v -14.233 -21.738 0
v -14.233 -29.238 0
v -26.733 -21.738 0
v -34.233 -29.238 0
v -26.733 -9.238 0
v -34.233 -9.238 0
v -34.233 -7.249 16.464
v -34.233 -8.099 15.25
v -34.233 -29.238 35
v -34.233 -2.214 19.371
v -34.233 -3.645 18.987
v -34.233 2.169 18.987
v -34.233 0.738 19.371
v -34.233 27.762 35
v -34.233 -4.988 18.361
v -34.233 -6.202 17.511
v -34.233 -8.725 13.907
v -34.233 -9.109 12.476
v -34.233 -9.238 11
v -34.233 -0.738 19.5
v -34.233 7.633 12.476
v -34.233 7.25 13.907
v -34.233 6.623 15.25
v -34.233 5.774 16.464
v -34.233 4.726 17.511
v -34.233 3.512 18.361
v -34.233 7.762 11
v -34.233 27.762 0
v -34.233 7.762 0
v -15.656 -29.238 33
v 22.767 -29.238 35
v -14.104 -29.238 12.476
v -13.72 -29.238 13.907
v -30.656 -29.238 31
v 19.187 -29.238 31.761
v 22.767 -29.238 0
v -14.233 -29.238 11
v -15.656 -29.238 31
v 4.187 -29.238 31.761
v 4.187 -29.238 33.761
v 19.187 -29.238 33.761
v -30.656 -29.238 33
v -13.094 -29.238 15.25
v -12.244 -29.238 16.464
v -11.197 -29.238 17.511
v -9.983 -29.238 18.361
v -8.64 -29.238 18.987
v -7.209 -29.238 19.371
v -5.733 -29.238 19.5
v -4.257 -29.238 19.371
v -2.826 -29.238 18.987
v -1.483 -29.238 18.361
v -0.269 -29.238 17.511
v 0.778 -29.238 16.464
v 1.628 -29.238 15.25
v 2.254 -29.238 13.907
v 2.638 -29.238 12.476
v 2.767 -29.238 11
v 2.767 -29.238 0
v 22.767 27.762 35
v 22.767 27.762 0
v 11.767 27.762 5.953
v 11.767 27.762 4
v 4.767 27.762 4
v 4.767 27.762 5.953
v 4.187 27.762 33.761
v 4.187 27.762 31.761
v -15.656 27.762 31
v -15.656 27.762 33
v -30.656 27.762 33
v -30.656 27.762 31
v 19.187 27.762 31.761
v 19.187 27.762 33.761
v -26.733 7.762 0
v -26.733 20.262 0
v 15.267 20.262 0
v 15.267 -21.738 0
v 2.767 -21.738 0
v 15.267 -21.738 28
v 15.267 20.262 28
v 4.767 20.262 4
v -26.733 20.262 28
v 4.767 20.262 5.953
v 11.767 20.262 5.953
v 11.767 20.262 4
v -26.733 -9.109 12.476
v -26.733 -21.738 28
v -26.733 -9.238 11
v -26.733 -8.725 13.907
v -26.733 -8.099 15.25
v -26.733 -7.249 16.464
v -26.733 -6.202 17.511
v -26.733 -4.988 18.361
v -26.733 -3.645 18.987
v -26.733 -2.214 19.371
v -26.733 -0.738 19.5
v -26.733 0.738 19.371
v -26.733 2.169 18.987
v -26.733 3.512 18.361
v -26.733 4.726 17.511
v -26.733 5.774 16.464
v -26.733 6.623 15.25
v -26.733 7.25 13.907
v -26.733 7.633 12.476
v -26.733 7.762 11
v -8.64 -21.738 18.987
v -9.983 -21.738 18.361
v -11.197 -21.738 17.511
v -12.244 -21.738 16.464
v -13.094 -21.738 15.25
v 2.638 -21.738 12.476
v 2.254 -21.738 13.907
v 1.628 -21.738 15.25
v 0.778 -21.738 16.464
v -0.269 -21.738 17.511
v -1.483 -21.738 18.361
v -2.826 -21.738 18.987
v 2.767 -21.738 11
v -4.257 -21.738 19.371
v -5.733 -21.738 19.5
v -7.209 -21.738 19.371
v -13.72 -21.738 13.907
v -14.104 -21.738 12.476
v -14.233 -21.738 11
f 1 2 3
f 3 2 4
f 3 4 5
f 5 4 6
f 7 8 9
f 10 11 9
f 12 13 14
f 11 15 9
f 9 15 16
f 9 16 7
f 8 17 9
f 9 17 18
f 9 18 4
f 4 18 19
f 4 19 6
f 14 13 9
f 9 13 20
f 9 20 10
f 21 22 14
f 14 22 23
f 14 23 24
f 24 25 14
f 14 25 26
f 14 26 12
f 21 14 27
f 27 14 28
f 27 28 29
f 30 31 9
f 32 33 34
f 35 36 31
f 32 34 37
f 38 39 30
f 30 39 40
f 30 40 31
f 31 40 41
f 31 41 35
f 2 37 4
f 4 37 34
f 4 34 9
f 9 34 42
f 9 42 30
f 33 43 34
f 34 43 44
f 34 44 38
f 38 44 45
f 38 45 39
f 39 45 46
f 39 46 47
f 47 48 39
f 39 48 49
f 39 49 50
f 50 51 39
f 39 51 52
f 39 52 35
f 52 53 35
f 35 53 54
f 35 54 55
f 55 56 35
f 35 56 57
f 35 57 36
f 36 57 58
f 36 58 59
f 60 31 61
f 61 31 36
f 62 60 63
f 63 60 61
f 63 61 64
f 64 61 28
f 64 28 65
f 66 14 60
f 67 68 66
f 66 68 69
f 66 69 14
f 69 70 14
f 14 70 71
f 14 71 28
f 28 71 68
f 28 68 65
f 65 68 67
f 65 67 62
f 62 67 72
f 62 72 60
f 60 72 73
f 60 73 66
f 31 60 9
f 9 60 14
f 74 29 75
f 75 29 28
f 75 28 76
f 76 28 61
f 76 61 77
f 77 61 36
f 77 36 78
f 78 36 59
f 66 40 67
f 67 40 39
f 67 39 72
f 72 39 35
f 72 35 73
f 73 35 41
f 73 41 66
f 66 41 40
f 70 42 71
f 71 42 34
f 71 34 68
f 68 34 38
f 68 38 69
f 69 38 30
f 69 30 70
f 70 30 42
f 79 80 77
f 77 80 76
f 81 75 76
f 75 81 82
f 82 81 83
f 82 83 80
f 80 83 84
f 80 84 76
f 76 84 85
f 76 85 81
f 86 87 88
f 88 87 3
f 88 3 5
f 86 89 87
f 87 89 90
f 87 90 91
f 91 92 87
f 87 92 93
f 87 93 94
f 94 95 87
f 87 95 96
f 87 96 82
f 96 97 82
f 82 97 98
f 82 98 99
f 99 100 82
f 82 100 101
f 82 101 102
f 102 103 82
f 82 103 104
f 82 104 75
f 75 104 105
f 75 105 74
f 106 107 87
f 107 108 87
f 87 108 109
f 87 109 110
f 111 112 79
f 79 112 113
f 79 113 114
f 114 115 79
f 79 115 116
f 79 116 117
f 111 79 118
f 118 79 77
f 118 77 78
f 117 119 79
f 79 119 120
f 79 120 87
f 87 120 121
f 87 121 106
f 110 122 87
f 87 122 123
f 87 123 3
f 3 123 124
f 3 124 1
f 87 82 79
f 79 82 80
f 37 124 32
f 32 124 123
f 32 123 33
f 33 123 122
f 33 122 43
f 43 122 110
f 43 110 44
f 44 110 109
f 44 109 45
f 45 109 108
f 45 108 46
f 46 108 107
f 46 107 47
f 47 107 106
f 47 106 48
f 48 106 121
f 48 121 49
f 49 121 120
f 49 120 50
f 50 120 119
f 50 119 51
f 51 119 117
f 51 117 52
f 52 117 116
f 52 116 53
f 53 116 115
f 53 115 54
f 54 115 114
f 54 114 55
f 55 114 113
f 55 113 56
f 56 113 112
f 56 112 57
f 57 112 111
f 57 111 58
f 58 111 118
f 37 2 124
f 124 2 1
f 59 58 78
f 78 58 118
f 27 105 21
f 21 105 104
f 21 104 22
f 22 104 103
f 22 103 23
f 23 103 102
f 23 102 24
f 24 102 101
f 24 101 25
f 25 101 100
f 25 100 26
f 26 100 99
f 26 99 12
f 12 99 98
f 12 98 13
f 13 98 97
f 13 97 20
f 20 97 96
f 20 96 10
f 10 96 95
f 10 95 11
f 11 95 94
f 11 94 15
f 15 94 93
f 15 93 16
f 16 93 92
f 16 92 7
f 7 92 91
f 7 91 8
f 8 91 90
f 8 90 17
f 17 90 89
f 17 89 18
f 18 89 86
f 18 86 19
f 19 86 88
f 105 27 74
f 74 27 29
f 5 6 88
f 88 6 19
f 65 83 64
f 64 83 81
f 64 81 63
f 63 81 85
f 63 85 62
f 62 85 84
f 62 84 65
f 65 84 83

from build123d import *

# Parameters (mm, degrees)
SKETCH2_W           = 57
SKETCH2_H           = 57
BOSS_EXTRUDE1_DEPTH = 35
SKETCH3_W           = 15
SKETCH3_H           = 2
CUT_EXTRUDE1_DEPTH  = 60
SKETCH4_W           = 42
SKETCH4_H           = 42
CUT_EXTRUDE2_DEPTH  = 28
CUT_EXTRUDE4_DEPTH  = 5
CUT_EXTRUDE5_DEPTH  = 10
CUT_EXTRUDE6_DEPTH  = 5
SKETCH13_W          = 7
SKETCH13_H          = 1.952566844
CUT_EXTRUDE8_DEPTH  = 12


with BuildPart() as part:
    # Sketch2 → Boss-Extrude1 (new body)
    with BuildSketch(Plane.XY):
        with Locations((-5.733009709, -0.737864078)):
            Rectangle(SKETCH2_W, SKETCH2_H)
    extrude(amount=BOSS_EXTRUDE1_DEPTH)

    # Sketch3 → Cut-Extrude1 (cut)
    with BuildSketch(Plane(origin=(0, 27.762135922, 0), x_dir=(1, 0, 0), z_dir=(0, 1, 0))):
        with Locations((-23.156416284, -32)):
            Rectangle(SKETCH3_W, SKETCH3_H)
        with Locations((11.686990291, -32.761209032)):
            Rectangle(SKETCH3_W, SKETCH3_H)
    extrude(amount=-CUT_EXTRUDE1_DEPTH, mode=Mode.SUBTRACT)

    # Sketch4 → Cut-Extrude2 (cut)
    with BuildSketch(Plane(origin=(0, 0, 0), x_dir=(-1, 0, 0), z_dir=(0, 0, -1))):
        with Locations((5.733009709, -0.737864078)):
            Rectangle(SKETCH4_W, SKETCH4_H)
    extrude(amount=-CUT_EXTRUDE2_DEPTH, mode=Mode.SUBTRACT)

    # Sketch5 → Cut-Extrude4 (cut)
    with BuildSketch(Plane(origin=(0, -21.737864078, 0), x_dir=(1, 0, 0), z_dir=(0, 1, 0))):
        with BuildLine():
            Line((2.766990291, -11), (2.766990291, 0))
            Line((2.766990291, 0), (-14.233009709, 0))
            Line((-14.233009709, 0), (-14.233009709, -11))
            ThreePointArc((-14.233009709, -11), (-5.733009709, -19.5), (2.766990291, -11))
        make_face()
    extrude(amount=-CUT_EXTRUDE4_DEPTH, mode=Mode.SUBTRACT)

    # Sketch7 → Cut-Extrude5 (cut)
    with BuildSketch(Plane(origin=(-26.733009709, 0, 0), x_dir=(0, 0, -1), z_dir=(1, 0, 0))):
        with BuildLine():
            Line((-11, -9.237864078), (0, -9.237864078))
            Line((0, -9.237864078), (0, 7.762135922))
            Line((0, 7.762135922), (-11, 7.762135922))
            ThreePointArc((-11, 7.762135922), (-19.5, -0.737864078), (-11, -9.237864078))
        make_face()
    extrude(amount=-CUT_EXTRUDE5_DEPTH, mode=Mode.SUBTRACT)

    # Sketch8 → Cut-Extrude6 (cut)
    with BuildSketch(Plane(origin=(0, -26.737864078, 0), x_dir=(1, 0, 0), z_dir=(0, 1, 0))):
        with BuildLine():
            Line((-14.233009709, 0), (2.766990291, 0))
            Line((2.766990291, 0), (2.766990291, -11))
            ThreePointArc((2.766990291, -11), (-5.733009709, -19.5), (-14.233009709, -11))
            Line((-14.233009709, -11), (-14.233009709, 0))
        make_face()
    extrude(amount=-CUT_EXTRUDE6_DEPTH, mode=Mode.SUBTRACT)

    # Sketch13 → Cut-Extrude8 (cut)
    with BuildSketch(Plane(origin=(0, 27.762135922, 0), x_dir=(1, 0, 0), z_dir=(0, 1, 0))):
        with Locations((8.266990291, -4.976283422)):
            Rectangle(SKETCH13_W, SKETCH13_H)
    extrude(amount=-CUT_EXTRUDE8_DEPTH, mode=Mode.SUBTRACT)


solid = part.part
